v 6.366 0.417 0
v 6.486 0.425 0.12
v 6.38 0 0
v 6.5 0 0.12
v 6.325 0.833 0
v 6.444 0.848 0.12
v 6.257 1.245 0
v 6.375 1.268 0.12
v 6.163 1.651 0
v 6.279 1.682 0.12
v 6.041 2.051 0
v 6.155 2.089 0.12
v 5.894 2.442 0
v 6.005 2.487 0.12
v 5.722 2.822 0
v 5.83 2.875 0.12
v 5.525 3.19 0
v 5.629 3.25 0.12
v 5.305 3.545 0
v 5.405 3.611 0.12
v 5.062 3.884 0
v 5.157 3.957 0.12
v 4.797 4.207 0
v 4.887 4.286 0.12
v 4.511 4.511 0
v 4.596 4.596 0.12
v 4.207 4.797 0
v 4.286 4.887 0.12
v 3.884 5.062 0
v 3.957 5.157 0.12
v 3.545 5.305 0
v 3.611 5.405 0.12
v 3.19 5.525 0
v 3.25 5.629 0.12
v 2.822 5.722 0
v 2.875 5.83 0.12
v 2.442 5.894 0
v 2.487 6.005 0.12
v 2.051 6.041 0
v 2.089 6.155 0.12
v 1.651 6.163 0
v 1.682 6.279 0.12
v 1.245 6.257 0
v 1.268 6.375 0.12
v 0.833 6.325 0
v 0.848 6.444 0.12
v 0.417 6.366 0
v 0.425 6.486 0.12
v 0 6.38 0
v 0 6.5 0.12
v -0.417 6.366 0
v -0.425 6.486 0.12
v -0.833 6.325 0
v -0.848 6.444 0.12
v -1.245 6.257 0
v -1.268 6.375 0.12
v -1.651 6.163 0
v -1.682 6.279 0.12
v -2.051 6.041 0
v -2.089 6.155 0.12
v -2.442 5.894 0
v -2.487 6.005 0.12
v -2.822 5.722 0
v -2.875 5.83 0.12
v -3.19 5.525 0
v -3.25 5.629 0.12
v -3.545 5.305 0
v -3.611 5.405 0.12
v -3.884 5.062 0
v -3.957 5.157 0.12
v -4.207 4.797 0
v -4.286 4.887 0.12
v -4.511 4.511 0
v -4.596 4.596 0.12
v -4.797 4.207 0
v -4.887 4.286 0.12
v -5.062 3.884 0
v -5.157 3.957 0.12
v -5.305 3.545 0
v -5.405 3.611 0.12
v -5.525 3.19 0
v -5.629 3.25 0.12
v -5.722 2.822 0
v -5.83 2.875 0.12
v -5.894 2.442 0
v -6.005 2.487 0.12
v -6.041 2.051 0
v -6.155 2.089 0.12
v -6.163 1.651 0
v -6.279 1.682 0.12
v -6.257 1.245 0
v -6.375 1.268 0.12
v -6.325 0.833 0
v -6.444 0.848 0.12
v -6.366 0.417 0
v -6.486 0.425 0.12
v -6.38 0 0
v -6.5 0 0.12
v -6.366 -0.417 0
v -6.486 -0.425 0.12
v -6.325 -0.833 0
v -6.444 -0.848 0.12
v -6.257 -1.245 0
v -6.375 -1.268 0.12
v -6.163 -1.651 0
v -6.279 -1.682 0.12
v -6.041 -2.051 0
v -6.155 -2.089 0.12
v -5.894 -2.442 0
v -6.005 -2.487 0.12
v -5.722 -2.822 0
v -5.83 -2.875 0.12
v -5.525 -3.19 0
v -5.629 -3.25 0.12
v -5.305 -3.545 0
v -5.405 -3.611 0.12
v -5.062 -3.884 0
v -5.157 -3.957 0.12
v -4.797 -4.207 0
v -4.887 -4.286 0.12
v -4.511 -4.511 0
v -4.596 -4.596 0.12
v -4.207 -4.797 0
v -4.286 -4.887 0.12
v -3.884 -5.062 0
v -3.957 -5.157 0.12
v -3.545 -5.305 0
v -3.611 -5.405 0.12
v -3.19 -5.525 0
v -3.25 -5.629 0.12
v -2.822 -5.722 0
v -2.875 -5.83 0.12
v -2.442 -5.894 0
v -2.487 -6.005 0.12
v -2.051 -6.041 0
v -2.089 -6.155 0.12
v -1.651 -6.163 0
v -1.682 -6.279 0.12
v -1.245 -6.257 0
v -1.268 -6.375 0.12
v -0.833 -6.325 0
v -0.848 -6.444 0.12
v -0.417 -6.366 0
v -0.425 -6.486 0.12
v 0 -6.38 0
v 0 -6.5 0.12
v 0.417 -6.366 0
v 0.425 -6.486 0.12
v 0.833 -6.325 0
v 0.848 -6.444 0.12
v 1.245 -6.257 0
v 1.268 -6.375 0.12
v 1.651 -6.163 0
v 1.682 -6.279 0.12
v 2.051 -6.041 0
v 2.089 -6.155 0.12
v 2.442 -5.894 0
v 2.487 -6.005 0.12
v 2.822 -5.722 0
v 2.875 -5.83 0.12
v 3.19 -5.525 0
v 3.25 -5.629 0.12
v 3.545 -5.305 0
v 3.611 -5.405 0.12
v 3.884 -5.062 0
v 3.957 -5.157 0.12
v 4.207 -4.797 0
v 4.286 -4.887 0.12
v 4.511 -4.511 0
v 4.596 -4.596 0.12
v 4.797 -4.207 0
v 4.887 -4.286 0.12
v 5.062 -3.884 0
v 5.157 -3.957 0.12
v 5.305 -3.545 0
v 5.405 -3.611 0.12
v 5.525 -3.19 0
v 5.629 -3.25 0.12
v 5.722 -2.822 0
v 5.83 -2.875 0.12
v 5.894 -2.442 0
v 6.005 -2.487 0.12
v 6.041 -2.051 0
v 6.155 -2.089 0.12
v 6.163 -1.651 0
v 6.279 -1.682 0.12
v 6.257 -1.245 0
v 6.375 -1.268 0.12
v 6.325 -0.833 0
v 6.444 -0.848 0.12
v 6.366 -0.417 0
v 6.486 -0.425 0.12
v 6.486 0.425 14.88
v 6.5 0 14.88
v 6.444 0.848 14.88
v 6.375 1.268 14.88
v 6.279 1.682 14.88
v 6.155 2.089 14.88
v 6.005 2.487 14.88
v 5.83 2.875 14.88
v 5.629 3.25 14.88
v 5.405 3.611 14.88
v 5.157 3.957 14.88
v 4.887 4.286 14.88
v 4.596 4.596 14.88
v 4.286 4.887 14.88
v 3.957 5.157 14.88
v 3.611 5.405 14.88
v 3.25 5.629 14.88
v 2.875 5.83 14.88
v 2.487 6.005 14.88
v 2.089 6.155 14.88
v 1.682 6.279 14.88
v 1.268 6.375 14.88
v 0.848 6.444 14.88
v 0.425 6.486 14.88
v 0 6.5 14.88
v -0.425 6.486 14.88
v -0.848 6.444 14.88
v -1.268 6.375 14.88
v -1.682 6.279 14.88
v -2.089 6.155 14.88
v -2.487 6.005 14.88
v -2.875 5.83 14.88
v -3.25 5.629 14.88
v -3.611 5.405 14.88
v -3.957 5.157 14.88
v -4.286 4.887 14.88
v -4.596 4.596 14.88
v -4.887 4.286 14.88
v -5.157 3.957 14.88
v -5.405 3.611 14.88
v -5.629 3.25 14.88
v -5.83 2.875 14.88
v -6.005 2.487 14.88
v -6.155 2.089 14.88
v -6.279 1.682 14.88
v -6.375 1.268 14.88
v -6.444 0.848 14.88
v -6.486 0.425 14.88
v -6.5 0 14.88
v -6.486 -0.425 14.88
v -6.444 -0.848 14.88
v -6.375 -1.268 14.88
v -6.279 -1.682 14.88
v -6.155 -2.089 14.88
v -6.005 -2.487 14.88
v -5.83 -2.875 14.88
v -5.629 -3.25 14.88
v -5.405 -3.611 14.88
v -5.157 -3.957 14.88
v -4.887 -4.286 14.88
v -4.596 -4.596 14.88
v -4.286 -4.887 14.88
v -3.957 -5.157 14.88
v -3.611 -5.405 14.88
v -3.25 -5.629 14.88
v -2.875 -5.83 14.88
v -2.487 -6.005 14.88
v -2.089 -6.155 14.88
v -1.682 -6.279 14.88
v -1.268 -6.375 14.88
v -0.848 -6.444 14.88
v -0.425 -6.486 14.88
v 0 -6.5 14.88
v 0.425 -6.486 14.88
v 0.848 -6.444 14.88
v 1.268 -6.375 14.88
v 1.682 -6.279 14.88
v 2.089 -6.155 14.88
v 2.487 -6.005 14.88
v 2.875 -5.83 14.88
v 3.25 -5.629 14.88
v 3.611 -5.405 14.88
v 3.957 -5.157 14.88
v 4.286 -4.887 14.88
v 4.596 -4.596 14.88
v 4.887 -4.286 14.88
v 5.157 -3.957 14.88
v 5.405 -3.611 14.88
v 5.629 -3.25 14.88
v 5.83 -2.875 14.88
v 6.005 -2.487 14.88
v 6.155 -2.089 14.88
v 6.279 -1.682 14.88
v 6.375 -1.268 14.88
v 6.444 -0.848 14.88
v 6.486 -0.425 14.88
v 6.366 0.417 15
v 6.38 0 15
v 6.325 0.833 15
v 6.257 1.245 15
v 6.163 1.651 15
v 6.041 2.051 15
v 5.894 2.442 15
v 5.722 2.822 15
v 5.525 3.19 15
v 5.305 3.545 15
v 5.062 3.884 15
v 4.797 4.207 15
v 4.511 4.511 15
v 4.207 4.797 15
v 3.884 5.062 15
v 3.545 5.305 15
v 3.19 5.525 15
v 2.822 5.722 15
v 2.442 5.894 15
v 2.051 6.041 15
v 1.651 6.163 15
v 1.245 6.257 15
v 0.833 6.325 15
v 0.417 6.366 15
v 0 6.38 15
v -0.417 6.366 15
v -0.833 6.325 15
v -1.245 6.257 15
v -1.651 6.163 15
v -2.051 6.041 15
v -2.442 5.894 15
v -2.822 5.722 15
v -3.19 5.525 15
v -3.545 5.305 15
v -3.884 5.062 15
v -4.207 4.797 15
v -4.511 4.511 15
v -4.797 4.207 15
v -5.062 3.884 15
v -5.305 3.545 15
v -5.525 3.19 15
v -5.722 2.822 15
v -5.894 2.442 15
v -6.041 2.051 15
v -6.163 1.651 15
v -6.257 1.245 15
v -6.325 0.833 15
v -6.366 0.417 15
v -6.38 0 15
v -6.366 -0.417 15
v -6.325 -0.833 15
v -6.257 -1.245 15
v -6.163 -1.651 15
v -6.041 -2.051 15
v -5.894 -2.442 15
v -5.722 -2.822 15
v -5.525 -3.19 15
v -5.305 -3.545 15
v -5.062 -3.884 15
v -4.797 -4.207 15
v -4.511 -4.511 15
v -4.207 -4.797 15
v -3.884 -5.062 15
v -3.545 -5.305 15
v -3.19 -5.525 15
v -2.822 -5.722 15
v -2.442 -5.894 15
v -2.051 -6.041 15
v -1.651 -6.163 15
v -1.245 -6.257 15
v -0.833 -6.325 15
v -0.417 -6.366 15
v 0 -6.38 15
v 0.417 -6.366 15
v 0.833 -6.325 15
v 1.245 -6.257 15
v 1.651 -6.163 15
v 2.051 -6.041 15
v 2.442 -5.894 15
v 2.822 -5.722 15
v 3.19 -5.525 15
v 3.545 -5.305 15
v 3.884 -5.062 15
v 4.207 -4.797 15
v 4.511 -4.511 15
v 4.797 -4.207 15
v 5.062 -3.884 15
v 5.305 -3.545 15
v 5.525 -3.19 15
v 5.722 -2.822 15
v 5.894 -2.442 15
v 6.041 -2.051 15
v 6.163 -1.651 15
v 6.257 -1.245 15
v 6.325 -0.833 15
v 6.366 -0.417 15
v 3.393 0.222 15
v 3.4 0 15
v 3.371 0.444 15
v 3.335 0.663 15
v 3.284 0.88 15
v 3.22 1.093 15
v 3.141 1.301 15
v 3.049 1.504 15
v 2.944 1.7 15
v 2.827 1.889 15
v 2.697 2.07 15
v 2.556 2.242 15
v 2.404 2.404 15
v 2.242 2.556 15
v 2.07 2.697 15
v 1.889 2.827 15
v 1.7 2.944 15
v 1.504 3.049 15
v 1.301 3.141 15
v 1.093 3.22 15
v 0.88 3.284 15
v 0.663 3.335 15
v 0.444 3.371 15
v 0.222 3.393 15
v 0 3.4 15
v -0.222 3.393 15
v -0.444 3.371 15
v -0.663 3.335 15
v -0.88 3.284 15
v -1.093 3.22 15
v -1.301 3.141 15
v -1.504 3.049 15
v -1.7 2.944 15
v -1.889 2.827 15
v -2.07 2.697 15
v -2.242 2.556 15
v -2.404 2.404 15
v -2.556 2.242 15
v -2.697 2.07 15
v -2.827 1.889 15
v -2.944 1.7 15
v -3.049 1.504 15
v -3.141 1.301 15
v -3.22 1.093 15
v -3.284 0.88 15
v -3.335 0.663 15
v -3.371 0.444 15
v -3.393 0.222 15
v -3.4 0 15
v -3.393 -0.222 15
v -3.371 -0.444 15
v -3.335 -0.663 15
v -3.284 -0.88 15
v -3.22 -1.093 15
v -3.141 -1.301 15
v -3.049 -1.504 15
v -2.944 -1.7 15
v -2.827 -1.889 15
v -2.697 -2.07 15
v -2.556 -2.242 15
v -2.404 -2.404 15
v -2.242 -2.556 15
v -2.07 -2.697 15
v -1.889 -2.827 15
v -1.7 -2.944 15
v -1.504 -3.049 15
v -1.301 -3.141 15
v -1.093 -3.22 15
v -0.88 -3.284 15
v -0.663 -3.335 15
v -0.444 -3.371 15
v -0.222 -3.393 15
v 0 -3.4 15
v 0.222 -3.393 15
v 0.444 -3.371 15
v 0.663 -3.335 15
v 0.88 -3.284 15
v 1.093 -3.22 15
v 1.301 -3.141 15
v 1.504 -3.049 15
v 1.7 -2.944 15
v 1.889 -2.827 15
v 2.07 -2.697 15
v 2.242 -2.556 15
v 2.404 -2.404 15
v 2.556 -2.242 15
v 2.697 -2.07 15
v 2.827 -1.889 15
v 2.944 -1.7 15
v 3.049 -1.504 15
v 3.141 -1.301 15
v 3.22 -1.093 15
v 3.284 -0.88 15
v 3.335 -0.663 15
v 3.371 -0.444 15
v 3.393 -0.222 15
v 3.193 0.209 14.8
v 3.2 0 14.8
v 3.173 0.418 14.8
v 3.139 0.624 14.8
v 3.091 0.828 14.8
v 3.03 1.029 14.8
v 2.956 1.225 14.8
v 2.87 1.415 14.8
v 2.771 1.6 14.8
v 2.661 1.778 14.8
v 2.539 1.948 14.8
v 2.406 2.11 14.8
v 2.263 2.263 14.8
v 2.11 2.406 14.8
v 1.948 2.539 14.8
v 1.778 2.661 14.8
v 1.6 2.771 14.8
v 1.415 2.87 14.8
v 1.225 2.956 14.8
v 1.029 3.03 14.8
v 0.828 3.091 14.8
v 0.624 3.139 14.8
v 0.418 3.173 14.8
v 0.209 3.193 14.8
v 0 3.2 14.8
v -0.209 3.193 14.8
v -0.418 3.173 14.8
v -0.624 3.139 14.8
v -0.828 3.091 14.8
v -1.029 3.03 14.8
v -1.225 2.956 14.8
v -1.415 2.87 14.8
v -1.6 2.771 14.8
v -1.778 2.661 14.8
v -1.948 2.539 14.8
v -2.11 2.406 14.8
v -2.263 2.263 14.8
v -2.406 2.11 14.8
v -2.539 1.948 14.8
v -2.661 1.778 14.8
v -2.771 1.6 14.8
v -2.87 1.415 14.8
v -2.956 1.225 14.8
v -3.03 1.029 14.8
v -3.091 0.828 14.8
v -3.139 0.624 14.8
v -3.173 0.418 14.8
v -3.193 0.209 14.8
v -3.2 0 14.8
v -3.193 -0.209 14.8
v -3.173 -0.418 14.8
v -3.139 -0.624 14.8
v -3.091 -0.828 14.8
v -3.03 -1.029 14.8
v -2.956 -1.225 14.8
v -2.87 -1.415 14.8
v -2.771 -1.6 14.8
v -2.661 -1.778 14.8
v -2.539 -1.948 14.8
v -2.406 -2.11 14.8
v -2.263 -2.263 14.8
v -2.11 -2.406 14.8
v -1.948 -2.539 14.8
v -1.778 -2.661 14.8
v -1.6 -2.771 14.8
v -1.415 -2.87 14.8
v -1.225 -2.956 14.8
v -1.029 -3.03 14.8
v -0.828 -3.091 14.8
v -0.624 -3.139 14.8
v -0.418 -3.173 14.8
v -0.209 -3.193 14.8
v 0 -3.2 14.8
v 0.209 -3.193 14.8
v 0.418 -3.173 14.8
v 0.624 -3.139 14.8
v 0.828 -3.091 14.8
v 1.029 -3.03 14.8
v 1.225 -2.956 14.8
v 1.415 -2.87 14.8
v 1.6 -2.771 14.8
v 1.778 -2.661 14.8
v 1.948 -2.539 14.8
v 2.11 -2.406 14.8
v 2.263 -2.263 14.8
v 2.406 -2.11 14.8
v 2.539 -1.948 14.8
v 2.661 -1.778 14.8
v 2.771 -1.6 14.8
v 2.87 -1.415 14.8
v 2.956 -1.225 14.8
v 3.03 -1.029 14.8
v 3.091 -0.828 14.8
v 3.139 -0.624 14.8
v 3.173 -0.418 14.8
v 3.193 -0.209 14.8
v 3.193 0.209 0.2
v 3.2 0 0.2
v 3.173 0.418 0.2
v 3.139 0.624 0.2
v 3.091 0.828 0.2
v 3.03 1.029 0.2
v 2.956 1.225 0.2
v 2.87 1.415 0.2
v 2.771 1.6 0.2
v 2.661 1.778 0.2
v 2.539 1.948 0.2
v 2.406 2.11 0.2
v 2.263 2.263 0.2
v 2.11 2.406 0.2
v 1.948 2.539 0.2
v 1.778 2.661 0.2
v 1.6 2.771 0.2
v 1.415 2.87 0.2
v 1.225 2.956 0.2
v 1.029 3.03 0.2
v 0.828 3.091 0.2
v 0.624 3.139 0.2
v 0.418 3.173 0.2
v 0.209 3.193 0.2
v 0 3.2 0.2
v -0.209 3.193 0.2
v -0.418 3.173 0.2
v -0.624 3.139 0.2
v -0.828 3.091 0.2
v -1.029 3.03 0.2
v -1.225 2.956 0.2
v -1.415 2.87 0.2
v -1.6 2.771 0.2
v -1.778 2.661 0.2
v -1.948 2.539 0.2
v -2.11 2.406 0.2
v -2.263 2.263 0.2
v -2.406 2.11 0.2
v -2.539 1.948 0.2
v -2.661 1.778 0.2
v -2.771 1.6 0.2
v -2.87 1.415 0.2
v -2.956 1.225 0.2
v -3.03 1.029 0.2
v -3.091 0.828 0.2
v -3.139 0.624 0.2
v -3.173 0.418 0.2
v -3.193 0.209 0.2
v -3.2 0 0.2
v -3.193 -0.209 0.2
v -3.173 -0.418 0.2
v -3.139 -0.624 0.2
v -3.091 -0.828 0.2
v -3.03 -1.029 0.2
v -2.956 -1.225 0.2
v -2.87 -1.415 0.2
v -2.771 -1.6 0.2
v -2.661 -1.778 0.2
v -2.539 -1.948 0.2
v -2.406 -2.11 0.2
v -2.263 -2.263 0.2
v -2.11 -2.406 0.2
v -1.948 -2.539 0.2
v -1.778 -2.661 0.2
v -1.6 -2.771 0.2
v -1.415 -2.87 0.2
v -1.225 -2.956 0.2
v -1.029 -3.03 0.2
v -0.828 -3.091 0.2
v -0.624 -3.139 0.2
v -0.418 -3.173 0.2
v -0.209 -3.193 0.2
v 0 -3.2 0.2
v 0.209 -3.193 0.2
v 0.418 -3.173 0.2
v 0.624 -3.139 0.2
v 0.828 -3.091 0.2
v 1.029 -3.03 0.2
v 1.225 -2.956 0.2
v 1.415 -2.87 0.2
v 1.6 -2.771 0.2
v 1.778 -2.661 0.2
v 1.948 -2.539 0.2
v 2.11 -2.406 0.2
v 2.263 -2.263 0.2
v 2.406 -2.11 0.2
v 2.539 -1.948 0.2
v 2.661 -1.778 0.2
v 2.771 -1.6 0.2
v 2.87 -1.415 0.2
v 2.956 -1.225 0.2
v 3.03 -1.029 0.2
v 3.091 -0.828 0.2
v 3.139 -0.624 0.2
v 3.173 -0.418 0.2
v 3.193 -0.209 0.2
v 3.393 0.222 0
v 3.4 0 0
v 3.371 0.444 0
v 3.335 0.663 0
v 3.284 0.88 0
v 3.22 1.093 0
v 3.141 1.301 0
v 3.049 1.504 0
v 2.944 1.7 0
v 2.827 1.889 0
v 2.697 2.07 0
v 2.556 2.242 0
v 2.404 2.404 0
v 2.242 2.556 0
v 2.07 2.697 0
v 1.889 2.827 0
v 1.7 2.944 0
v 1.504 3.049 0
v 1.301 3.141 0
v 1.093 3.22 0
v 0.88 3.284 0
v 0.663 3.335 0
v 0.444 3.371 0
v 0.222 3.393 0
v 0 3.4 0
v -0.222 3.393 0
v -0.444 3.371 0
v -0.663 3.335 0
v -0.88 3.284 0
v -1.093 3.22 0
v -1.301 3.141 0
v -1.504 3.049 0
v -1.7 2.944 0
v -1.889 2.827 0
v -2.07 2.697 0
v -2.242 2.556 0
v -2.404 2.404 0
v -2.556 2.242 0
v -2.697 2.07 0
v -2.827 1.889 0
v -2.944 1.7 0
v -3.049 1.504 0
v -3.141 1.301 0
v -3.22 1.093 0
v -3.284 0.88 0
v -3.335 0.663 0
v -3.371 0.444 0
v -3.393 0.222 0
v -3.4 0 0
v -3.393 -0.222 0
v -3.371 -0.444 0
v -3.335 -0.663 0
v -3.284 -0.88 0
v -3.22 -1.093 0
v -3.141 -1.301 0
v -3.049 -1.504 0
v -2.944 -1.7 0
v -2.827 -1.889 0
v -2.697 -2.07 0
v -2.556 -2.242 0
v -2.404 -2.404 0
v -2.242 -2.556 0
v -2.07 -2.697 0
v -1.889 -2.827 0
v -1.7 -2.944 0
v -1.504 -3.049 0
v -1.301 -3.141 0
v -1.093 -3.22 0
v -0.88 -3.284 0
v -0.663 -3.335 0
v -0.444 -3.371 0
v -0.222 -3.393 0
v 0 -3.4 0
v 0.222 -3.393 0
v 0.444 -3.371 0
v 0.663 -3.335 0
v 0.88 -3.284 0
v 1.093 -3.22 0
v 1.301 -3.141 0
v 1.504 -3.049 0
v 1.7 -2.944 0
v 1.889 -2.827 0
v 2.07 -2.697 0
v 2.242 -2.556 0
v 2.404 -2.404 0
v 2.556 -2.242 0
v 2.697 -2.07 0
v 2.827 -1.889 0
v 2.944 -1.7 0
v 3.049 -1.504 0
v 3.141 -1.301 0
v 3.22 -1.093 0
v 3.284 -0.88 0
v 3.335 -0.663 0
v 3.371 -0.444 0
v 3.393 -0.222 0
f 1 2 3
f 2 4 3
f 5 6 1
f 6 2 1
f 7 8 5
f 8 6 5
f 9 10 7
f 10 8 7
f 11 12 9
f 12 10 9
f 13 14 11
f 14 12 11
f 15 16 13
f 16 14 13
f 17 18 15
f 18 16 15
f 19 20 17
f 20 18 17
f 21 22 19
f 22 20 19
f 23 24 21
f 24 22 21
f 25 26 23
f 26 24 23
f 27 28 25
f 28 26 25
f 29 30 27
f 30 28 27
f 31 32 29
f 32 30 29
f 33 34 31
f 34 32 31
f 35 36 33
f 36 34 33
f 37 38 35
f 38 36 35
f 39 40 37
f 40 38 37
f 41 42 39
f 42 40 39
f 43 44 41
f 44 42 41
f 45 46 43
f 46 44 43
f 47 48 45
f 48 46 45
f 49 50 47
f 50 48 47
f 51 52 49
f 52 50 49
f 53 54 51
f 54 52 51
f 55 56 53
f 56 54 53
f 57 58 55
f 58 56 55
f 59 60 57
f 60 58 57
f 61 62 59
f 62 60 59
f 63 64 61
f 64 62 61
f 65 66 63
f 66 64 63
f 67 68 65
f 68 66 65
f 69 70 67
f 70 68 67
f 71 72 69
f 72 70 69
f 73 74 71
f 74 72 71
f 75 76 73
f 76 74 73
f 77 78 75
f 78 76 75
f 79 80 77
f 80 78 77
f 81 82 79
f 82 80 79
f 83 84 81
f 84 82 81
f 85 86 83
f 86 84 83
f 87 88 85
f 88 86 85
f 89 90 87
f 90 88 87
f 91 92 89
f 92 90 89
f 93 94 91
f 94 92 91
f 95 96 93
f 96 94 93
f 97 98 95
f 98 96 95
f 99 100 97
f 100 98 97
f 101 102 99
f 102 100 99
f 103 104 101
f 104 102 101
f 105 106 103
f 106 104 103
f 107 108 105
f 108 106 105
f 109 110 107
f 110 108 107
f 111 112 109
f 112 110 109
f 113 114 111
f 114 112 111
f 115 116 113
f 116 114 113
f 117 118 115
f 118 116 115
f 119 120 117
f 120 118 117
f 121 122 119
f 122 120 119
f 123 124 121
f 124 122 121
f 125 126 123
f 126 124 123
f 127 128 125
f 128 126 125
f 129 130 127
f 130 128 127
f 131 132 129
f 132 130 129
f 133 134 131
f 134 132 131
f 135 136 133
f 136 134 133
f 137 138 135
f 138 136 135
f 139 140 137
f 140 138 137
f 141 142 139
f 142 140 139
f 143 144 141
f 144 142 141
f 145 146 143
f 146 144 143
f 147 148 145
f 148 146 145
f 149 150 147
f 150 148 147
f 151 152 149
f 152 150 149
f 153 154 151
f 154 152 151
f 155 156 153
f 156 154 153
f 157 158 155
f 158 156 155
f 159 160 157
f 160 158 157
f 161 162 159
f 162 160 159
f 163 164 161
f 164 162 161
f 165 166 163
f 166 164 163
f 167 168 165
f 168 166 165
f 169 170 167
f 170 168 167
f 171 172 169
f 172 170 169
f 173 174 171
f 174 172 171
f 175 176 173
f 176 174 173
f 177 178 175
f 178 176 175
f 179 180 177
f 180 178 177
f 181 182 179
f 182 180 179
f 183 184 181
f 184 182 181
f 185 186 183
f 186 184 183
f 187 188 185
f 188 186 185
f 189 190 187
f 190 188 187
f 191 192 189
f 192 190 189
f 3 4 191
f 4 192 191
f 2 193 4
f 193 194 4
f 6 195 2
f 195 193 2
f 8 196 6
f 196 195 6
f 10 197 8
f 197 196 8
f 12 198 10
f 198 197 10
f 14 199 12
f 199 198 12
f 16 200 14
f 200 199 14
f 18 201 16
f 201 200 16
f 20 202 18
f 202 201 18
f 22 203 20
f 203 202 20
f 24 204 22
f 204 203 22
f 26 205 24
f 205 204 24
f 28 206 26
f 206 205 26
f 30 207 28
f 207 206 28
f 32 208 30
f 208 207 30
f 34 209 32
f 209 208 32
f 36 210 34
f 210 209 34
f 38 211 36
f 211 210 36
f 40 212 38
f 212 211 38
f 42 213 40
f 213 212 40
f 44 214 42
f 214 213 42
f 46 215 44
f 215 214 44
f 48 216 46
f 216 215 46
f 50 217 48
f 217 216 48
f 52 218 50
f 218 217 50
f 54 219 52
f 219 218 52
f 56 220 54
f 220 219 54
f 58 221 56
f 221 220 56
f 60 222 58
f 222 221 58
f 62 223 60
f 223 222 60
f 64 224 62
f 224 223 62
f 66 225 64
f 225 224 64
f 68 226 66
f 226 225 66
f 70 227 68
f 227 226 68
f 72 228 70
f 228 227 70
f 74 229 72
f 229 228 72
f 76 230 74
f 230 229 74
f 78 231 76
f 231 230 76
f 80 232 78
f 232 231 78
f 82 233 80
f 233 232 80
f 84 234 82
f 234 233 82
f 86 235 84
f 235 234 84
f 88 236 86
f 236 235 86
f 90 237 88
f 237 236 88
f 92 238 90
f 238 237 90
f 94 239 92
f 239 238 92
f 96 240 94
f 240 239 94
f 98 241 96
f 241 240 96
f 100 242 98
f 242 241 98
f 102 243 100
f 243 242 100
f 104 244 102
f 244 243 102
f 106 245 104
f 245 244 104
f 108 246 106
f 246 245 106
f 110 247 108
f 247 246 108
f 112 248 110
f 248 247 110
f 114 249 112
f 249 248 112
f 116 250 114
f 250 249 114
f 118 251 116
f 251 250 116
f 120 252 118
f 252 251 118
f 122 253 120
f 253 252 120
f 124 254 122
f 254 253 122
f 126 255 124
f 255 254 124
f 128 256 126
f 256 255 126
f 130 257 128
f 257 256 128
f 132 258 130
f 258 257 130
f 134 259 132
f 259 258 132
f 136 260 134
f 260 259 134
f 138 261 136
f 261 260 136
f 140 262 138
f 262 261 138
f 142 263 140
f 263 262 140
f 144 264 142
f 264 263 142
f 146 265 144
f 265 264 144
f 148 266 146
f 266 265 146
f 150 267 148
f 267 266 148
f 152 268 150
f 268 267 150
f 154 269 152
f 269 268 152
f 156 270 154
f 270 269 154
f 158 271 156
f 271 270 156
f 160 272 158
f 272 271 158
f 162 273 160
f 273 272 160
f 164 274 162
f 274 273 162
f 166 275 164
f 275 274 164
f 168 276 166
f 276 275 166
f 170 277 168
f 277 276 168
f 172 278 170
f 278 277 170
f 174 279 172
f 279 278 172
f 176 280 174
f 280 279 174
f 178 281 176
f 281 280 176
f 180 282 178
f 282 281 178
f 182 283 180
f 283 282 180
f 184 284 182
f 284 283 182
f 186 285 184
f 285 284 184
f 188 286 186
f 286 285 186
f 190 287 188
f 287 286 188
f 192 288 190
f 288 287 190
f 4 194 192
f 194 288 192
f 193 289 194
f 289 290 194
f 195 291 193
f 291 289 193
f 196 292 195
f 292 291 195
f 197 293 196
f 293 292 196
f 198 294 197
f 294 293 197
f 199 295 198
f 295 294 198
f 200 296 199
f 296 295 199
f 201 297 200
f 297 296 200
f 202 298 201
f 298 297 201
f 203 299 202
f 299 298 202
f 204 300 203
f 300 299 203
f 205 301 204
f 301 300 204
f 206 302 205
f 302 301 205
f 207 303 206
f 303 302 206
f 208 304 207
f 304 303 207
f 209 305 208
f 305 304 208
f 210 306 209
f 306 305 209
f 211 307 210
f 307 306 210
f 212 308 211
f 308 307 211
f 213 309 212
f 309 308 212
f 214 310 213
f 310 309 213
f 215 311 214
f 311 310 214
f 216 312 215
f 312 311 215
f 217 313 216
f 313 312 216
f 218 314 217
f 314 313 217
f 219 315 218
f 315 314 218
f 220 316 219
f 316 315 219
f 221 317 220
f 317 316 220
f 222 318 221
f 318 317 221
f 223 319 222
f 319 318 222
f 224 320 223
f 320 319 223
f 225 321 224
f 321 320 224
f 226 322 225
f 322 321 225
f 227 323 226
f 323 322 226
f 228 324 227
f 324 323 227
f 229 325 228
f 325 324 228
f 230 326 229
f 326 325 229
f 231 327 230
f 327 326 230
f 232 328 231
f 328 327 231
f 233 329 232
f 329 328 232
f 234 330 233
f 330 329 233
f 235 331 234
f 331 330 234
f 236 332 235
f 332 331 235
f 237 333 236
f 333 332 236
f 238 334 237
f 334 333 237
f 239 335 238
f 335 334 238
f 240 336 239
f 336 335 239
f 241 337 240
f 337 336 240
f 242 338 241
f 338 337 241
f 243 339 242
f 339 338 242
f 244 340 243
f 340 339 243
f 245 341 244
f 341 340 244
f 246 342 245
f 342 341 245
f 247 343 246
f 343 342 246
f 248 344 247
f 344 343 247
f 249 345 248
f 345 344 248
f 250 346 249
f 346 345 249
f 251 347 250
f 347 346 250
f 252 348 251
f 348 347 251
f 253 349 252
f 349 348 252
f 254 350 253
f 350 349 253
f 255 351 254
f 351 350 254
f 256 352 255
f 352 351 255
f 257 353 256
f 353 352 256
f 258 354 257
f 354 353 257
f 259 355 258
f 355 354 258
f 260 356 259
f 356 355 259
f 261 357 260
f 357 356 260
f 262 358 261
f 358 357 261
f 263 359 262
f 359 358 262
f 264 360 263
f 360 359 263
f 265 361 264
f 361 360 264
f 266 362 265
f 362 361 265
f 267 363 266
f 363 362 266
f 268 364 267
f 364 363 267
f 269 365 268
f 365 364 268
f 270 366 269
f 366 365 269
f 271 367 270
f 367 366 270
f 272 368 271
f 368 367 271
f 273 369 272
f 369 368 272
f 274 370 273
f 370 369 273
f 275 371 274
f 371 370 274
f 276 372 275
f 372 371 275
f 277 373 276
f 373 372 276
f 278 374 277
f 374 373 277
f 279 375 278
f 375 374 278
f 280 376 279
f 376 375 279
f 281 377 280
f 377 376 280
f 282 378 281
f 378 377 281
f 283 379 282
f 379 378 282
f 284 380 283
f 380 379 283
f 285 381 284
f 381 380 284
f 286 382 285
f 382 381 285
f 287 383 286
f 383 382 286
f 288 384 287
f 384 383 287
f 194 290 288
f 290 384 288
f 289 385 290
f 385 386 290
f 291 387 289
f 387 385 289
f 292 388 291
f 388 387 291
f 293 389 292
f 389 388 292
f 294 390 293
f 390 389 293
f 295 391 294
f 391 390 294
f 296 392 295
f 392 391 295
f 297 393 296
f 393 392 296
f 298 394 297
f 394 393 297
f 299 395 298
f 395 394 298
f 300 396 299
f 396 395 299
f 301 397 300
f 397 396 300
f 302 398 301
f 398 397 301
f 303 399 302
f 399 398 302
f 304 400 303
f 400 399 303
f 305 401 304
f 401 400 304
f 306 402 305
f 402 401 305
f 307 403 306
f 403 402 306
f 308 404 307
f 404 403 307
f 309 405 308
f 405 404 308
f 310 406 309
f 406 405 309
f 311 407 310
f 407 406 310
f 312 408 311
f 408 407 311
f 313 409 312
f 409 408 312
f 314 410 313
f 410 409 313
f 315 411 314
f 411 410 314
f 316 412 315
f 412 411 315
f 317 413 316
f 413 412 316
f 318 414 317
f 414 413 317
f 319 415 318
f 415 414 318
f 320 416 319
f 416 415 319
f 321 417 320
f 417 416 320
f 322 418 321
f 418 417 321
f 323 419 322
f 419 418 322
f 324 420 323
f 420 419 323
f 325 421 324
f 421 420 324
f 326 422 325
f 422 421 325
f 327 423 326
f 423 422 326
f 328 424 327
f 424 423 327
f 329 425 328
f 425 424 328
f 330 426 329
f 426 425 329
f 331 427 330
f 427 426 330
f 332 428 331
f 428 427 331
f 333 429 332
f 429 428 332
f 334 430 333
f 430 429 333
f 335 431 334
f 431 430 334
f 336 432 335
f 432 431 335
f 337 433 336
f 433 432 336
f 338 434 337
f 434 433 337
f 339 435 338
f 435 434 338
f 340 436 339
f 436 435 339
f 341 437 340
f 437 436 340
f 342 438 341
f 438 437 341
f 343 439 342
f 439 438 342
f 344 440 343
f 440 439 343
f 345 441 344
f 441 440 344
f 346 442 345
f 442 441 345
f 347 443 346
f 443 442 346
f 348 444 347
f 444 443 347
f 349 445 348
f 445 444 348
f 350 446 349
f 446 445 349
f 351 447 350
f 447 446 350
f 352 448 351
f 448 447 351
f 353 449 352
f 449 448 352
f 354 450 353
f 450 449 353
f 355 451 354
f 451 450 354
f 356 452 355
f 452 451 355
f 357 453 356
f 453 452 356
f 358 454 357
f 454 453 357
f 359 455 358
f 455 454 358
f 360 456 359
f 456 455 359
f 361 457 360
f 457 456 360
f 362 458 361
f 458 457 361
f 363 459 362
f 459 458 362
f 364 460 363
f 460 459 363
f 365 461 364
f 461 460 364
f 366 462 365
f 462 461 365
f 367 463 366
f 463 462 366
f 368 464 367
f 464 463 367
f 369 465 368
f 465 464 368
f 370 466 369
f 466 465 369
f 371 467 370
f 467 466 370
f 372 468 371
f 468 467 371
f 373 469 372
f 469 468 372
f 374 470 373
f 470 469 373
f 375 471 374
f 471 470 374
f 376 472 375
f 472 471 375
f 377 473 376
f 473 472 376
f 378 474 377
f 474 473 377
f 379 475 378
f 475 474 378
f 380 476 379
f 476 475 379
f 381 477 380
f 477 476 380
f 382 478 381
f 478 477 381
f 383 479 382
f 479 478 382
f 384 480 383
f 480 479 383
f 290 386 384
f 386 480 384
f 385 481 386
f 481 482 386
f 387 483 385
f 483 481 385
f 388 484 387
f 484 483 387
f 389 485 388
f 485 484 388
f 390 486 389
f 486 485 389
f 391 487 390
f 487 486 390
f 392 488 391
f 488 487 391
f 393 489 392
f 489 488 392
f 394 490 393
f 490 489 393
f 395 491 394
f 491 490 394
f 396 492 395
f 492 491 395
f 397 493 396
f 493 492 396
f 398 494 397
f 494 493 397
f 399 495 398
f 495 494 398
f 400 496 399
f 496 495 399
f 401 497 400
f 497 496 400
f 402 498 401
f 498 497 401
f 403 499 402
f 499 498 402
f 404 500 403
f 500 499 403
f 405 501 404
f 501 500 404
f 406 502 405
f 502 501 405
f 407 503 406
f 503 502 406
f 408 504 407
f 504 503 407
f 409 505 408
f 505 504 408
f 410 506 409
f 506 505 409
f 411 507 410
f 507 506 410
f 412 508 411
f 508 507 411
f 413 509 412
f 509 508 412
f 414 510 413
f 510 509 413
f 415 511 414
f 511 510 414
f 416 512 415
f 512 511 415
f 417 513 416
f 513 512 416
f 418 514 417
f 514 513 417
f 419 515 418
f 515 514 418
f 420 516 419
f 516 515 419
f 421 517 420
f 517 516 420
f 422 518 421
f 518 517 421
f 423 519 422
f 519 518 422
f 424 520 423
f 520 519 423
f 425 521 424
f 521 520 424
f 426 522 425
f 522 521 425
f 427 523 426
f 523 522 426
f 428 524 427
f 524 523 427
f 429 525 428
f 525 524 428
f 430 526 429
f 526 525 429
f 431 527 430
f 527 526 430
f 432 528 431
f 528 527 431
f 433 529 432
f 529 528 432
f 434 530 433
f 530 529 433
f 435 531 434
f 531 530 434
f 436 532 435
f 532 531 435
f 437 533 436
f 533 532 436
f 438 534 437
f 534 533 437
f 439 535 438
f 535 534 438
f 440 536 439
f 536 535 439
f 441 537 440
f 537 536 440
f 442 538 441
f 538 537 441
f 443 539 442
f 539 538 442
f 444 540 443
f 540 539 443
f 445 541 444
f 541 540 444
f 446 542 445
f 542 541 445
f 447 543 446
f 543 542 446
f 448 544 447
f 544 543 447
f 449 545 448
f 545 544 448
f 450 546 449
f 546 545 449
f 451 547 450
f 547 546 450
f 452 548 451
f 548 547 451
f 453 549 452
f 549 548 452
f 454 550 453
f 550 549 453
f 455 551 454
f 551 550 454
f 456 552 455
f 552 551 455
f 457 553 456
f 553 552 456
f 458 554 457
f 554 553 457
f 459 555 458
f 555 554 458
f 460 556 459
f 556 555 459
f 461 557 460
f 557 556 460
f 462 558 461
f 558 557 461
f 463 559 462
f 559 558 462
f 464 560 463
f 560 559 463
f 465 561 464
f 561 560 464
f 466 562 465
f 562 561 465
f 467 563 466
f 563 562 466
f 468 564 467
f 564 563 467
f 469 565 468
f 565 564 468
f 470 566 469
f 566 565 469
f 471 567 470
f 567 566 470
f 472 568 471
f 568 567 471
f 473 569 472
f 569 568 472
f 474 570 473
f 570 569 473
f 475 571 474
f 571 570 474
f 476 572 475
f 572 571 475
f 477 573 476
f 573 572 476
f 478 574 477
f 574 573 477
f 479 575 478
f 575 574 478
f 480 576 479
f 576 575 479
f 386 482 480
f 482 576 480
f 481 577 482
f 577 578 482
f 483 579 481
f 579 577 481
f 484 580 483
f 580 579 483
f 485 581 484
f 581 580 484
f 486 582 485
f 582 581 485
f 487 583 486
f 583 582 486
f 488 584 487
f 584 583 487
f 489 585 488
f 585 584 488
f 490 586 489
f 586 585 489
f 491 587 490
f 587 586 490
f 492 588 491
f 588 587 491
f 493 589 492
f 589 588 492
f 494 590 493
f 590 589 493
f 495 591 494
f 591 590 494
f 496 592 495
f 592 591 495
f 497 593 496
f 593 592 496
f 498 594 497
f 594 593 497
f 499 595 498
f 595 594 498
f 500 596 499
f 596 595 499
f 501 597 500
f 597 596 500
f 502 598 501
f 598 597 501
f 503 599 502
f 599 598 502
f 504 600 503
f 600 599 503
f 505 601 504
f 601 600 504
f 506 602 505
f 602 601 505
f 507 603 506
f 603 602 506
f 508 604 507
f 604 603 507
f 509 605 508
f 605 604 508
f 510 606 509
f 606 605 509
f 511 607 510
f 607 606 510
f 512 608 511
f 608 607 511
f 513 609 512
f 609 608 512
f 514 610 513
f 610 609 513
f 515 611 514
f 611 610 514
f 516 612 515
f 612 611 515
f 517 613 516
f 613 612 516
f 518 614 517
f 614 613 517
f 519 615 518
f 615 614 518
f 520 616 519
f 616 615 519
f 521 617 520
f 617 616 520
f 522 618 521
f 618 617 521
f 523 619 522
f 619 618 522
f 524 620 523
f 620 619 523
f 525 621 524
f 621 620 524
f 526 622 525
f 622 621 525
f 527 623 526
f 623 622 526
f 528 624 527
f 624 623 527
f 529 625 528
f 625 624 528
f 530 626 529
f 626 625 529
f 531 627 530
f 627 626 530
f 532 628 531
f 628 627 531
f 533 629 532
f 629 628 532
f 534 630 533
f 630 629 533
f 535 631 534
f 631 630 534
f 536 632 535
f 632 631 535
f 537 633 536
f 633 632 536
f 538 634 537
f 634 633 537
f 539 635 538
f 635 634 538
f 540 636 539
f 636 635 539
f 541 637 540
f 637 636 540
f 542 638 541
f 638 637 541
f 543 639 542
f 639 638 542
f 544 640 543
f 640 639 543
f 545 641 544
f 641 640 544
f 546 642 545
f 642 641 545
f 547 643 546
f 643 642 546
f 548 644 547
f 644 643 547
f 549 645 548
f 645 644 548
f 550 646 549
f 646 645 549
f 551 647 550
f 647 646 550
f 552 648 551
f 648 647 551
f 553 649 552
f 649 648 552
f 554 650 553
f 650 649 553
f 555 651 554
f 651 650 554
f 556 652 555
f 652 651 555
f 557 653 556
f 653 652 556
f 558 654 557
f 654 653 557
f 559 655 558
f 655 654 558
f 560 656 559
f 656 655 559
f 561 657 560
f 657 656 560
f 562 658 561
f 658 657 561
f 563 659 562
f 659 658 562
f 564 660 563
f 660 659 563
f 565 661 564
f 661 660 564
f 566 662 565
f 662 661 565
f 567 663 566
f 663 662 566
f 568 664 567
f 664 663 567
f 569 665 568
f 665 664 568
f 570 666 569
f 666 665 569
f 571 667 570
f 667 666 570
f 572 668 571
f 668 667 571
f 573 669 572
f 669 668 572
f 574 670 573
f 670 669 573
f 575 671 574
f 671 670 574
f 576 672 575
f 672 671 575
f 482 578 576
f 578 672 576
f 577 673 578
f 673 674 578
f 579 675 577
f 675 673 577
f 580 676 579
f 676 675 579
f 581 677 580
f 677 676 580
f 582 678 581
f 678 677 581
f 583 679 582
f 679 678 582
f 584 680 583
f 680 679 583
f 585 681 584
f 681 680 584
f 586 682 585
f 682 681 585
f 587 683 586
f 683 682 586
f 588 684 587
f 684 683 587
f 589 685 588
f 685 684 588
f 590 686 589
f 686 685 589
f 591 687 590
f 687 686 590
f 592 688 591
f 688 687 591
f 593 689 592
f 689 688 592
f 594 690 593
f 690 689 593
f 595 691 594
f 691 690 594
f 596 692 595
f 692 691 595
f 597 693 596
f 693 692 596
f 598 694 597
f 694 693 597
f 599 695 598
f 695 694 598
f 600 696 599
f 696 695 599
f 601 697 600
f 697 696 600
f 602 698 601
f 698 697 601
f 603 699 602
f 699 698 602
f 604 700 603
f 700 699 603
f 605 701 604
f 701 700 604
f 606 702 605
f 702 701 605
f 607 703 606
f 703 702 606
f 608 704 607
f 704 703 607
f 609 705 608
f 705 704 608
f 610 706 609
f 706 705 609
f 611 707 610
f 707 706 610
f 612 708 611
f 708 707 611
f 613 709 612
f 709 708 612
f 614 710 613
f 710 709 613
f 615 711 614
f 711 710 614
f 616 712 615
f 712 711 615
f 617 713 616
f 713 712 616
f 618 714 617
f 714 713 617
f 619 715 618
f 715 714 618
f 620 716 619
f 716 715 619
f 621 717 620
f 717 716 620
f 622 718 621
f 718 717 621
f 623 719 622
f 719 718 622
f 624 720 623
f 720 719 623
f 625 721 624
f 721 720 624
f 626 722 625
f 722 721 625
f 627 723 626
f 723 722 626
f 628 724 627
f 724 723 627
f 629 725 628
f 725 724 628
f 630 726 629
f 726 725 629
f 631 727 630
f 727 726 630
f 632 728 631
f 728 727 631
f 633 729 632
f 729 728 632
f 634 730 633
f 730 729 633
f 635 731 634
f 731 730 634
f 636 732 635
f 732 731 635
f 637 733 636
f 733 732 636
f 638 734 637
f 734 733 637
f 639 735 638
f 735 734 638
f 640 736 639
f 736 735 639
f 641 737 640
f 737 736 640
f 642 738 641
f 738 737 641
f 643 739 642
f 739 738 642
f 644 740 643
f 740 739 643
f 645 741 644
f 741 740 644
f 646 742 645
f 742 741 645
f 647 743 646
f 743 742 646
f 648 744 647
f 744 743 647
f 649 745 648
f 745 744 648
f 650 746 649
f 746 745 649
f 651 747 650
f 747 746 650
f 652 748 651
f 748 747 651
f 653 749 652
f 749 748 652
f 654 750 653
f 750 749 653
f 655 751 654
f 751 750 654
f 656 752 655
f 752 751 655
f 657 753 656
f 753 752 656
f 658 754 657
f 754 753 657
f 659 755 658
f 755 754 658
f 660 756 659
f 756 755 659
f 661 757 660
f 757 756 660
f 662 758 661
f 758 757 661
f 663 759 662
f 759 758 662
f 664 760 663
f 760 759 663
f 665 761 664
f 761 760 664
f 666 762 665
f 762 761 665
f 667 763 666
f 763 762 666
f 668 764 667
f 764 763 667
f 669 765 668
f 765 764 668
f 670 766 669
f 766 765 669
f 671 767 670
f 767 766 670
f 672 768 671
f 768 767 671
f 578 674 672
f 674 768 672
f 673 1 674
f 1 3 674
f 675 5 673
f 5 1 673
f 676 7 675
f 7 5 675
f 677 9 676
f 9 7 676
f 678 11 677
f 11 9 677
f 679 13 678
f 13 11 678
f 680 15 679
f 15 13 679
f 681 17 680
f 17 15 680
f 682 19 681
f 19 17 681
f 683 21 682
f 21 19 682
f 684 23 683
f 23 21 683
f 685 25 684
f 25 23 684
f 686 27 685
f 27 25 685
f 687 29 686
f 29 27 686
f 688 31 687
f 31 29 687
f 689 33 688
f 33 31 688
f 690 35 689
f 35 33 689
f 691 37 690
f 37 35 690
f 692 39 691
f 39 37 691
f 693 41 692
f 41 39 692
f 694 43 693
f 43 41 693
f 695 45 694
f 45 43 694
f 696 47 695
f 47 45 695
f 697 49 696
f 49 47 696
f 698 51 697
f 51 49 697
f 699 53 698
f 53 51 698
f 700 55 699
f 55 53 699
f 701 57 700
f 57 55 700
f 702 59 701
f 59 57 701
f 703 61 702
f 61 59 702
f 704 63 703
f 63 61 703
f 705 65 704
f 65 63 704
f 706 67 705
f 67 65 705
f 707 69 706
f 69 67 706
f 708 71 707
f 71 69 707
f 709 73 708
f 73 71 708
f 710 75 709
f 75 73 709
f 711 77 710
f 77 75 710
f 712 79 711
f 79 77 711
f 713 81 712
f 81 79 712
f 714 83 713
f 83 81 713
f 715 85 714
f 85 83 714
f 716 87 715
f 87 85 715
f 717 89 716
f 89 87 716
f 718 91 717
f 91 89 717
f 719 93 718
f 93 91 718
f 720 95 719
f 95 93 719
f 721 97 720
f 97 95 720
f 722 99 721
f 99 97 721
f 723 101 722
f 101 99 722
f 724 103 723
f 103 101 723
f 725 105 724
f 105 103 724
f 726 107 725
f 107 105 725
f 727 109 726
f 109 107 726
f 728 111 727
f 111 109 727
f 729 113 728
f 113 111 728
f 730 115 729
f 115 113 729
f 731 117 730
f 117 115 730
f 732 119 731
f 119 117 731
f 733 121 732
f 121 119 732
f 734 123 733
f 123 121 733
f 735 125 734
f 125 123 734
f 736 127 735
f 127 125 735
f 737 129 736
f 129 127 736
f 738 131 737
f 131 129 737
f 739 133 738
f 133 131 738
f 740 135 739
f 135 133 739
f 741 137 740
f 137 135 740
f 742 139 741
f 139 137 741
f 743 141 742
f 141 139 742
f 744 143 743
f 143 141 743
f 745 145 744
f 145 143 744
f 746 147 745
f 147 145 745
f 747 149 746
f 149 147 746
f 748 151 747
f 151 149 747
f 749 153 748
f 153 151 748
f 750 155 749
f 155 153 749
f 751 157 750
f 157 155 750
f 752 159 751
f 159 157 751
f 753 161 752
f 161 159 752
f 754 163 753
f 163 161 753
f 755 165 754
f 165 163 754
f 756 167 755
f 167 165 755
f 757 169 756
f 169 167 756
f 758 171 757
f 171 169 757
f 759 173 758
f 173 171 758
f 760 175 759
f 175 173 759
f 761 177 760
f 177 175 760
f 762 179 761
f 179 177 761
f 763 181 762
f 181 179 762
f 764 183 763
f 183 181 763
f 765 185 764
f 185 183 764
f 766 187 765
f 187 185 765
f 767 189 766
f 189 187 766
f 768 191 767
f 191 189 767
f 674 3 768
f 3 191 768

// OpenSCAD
// OOMP generic catalogue model; units: mm.
// Stud length is additional to body depth. Tapping depths are model assumptions.
variant = "full"; // [full, display]
family = "spacer";
connection_type = "plain";
depth_mm = 15;
stud_length_mm = 0;
tapped_depth_mm = 0;
bore_mm = 6.4;
outer_diameter_mm = 13;
across_flats_mm = 6;
thread_nominal_diameter_mm = 3;
thread_pitch_mm = 0.5;
edge_chamfer_mm = 0.12;
mouth_chamfer_mm = 0.2;
angular_segments = 96;
samples_per_pitch = 16;

// Boundary travels up the outside, then down any tapped/plain bore.
// Equal-height rings at shoulders form the annular shoulder faces.
n = angular_segments;
threaded = family == "standoff";
has_stud = connection_type == "stud_to_tapped" || connection_type == "stud_to_stud";
two_studs = connection_type == "stud_to_stud";
through = !threaded || connection_type == "tapped_to_tapped";
pitch = thread_pitch_mm;
diameter = threaded ? thread_nominal_diameter_mm : bore_mm;
minor = diameter - 5*sqrt(3)*pitch/8;
transition = mouth_chamfer_mm + (threaded ? 5*sqrt(3)*pitch/16 : 0);
tip_chamfer = mouth_chamfer_mm + 17*sqrt(3)*pitch/48;
function sorted(v) = len(v)<=1 ? v : let(p=v[0])
    concat(sorted([for(x=v) if(x<p-1e-8) x]), [p], sorted([for(x=v) if(x>p+1e-8) x]));
function reverse(v) = [for(i=[len(v)-1:-1:0]) v[i]];
function theta(i) = i*360/n;
function fract(x) = x-floor(x);
function phase_distance(i,z) = abs(fract(z/pitch-theta(i)/360+0.5)-0.5);
function thread_r(i,z) = minor/2 + min(5*sqrt(3)*pitch/16,
    max(0,(phase_distance(i,z)-0.125)*pitch*sqrt(3)));
function stud_r(i,z,tip) = min(diameter/2 - (variant=="full" ?
    min(17*sqrt(3)*pitch/48,max(0,(phase_distance(i,z)-0.0625)*pitch*sqrt(3))) : 0),
    diameter/2-tip_chamfer+abs(z-tip));
function body_r(i,z) = (threaded ? across_flats_mm/2/cos(theta(i)%60-30) : outer_diameter_mm/2)
    - max(0,edge_chamfer_mm-min(z,depth_mm-z));
function bore_r(i,z) = max(threaded ? (variant=="full" ? thread_r(i,z) : minor/2) : diameter/2,
    diameter/2+mouth_chamfer_mm-(through ? min(z,depth_mm-z) : depth_mm-z));
function stud_z(a,b,tip) = let(count=variant=="full" ? ceil(stud_length_mm/pitch*samples_per_pitch) : 1)
    sorted(concat([for(i=[0:count]) a+(b-a)*i/count], [tip==a ? tip+tip_chamfer : tip-tip_chamfer]));
body_z = sorted([0,edge_chamfer_mm,depth_mm-edge_chamfer_mm,depth_mm]);
low = through ? 0 : depth_mm-tapped_depth_mm;
count = threaded && variant=="full" ? ceil((depth_mm-low)/pitch*samples_per_pitch) : 1;
bore_z = two_studs ? [] : reverse(sorted(concat(
    [for(i=[0:count]) low+(depth_mm-low)*i/count],
    [depth_mm-mouth_chamfer_mm,depth_mm-transition],
    through ? [mouth_chamfer_mm,transition] : [])));
// Ring descriptors: [height, kind, tip]. Kind: 0 body, 1 stud, 2 bore.
rings = concat(
    has_stud ? [for(z=stud_z(-stud_length_mm,0,-stud_length_mm)) [z,1,-stud_length_mm]] : [],
    [for(z=body_z) [z,0,0]],
    two_studs ? [for(z=stud_z(depth_mm,depth_mm+stud_length_mm,depth_mm+stud_length_mm)) [z,1,depth_mm+stud_length_mm]] : [],
    [for(z=bore_z) [z,2,0]]);
function radius(i,ring) = ring[1]==0 ? body_r(i,ring[0]) :
    ring[1]==1 ? stud_r(i,ring[0],ring[2]) : bore_r(i,ring[0]);
points = concat([for(ring=rings) for(i=[0:n-1])
    [radius(i,ring)*cos(theta(i)),radius(i,ring)*sin(theta(i)),ring[0]]],
    through ? [] : [[0,0,rings[0][0]],[0,0,rings[len(rings)-1][0]]]);
center = len(rings)*n;
last = (len(rings)-1)*n;
// OpenSCAD winding is opposite to STL winding.
faces = concat(
    [for(j=[0:len(rings)-(through ? 1 : 2)]) for(i=[0:n-1]) each
        let(a=j*n+i,b=j*n+(i+1)%n,c=((j+1)%len(rings))*n+(i+1)%n,d=((j+1)%len(rings))*n+i)
        [[a,c,b],[a,d,c]]],
    through ? [] : [for(i=[0:n-1]) each let(k=(i+1)%n)
        [[center,i,k],[center+1,last+k,last+i]]]);
assert(family=="spacer" || family=="standoff");
assert(!threaded || connection_type=="tapped_to_tapped" || has_stud);
assert(depth_mm>0 && diameter>0 && pitch>0);
assert(variant=="full" || variant=="display");
assert(n>=24 && n%12==0 && samples_per_pitch>=8);
assert(mouth_chamfer_mm>0 && mouth_chamfer_mm<depth_mm/2);
assert(edge_chamfer_mm>=0 && edge_chamfer_mm<depth_mm/2);
assert(diameter+4*max(mouth_chamfer_mm,edge_chamfer_mm) < (threaded ? across_flats_mm : outer_diameter_mm));
assert(!has_stud || stud_length_mm>2*mouth_chamfer_mm);
assert(!through || !threaded || 2*transition<depth_mm);
assert(connection_type!="stud_to_tapped" || (tapped_depth_mm>transition && tapped_depth_mm<depth_mm));
color([0.86,0.85,0.81]) polyhedron(points=points,faces=faces,convexity=20);
